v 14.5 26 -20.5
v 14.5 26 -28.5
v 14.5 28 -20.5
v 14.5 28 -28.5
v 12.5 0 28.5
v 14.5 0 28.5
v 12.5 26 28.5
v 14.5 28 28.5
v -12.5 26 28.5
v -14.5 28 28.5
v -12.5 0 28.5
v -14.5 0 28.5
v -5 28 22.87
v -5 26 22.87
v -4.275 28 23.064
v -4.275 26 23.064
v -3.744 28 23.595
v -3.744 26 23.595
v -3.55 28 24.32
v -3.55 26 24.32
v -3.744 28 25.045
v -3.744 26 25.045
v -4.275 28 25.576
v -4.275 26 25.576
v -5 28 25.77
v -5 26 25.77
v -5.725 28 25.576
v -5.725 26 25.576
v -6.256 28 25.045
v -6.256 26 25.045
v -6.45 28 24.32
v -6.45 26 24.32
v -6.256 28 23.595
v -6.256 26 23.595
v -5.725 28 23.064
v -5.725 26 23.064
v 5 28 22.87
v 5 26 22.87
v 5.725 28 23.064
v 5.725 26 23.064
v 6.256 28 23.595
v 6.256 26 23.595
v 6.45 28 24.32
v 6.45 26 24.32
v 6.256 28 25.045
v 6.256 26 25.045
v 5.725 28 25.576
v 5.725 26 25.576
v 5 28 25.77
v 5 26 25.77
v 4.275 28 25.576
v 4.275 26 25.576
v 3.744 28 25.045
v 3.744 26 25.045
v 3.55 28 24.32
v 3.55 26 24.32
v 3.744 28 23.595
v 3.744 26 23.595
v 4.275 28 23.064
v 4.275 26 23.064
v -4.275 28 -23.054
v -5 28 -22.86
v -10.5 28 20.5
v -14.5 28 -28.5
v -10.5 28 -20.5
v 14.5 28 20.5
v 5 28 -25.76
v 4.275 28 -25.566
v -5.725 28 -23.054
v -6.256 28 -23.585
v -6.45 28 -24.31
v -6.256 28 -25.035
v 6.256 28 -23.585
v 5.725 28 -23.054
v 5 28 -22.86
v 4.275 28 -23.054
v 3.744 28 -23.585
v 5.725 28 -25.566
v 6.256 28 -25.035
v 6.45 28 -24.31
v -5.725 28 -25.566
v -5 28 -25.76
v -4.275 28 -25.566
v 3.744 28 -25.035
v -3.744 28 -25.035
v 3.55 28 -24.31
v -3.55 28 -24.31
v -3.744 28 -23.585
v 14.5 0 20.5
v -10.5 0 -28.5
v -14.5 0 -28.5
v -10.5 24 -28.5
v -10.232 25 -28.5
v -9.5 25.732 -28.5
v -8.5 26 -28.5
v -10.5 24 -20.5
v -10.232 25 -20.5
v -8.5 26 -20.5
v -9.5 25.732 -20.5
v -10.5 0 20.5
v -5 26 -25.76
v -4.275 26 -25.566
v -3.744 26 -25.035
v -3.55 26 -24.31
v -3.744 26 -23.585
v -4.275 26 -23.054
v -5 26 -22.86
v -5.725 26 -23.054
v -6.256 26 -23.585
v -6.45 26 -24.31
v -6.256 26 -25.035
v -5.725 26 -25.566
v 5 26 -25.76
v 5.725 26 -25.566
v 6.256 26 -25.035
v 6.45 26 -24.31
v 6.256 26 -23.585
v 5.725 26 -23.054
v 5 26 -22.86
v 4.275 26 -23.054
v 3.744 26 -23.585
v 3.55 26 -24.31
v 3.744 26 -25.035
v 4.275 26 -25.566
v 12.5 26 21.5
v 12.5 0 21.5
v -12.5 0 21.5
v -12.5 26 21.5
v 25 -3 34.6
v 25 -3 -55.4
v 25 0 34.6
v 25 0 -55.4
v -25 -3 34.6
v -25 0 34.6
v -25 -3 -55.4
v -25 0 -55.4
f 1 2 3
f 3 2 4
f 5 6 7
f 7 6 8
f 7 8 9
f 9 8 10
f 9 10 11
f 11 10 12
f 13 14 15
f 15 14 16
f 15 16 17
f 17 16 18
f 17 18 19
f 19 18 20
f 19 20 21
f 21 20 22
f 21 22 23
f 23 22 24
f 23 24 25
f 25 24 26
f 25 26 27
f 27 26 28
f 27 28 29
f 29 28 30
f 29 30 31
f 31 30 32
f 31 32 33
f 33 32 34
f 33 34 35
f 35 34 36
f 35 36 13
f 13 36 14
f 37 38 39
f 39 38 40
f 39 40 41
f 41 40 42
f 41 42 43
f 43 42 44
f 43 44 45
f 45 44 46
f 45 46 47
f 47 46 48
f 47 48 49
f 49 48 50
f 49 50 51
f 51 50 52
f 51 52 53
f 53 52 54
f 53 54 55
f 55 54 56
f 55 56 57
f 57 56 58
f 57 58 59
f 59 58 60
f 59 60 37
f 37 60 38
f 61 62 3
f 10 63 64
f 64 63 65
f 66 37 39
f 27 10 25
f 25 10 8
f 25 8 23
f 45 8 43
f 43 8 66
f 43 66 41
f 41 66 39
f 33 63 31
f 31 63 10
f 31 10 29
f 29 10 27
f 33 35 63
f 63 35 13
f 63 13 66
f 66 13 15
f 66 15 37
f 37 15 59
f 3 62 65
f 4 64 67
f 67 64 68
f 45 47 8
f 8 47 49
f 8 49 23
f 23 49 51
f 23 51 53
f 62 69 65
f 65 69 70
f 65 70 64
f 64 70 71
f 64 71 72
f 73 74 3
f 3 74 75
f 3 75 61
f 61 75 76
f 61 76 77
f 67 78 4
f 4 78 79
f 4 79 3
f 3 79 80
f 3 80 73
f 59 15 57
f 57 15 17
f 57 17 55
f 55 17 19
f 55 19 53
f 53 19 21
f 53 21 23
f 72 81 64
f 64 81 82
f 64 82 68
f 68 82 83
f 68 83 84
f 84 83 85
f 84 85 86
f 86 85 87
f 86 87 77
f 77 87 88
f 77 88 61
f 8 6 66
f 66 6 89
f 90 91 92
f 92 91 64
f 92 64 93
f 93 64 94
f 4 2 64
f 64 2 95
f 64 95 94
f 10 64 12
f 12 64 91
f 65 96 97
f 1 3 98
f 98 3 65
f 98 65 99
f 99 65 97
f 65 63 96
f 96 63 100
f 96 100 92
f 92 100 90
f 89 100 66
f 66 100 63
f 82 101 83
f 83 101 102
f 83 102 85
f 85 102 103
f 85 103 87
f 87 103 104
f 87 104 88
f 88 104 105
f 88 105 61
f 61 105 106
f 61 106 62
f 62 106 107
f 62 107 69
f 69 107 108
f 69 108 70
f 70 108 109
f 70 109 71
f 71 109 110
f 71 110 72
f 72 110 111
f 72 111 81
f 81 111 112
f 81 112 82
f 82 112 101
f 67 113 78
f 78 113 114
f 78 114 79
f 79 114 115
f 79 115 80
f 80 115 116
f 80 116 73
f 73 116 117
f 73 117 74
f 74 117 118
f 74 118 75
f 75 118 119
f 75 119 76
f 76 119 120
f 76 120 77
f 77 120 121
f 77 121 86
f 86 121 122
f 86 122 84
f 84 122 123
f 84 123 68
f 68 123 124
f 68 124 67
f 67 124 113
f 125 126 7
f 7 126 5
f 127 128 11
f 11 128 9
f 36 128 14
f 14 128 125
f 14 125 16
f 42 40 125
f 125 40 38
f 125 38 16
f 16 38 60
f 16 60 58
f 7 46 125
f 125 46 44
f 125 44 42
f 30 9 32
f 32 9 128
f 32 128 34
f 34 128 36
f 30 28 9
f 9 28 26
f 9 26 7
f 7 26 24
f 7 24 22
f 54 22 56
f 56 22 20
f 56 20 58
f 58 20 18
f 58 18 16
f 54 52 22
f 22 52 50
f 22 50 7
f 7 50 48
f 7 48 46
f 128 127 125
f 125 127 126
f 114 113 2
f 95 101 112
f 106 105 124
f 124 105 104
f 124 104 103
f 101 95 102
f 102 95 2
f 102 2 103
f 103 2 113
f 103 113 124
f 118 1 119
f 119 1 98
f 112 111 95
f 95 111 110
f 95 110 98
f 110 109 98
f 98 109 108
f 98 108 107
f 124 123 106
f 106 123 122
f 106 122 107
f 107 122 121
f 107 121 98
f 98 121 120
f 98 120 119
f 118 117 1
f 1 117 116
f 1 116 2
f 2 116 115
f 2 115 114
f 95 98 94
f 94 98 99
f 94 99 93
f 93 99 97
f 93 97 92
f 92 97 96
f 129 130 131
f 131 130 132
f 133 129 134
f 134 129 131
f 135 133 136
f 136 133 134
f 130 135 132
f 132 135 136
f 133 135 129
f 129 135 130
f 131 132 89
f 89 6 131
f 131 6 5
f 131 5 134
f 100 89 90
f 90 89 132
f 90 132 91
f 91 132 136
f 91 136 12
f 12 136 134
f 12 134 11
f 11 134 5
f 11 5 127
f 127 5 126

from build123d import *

# Parameters (mm, degrees)
SKETCH_1_W          = 29
SKETCH_1_H          = 57
SKETCH_1_R          = 1.45
SKETCH_1_W_2        = 21
SKETCH_1_H_2        = 41
EXTRUDE_1_DEPTH     = 28
SKETCH_2_W          = 25
SKETCH_2_H          = 26
CUT_EXTRUDE_1_DEPTH = 7
SKETCH_3_W          = 49
SKETCH_3_H          = 26
CUT_EXTRUDE_2_DEPTH = 25
SKETCH_4_W          = 4
SKETCH_4_H          = 41
CUT_EXTRUDE_3_DEPTH = 25
FILLET_1_R          = 2
SKETCH_5_W          = 50
SKETCH_5_H          = 90
EXTRUDE_2_DEPTH     = 3


with BuildPart() as part:
    # 스케치1 → 보스-돌출1 (new body)
    with BuildSketch(Plane(origin=(0, 0, 0), x_dir=(1, 0, 0), z_dir=(0, 1, 0))):
        Rectangle(SKETCH_1_W, SKETCH_1_H)
        with Locations(Location((-5, 24.31, 0), (0, 0, 270))):
            Circle(SKETCH_1_R, mode=Mode.SUBTRACT)
        with Locations(Location((-5, -24.32, 0), (0, 0, 270))):
            Circle(SKETCH_1_R, mode=Mode.SUBTRACT)
        with Locations(Location((5, -24.32, 0), (0, 0, 90))):
            Circle(SKETCH_1_R, mode=Mode.SUBTRACT)
        with Locations(Location((5, 24.31, 0), (0, 0, 90))):
            Circle(SKETCH_1_R, mode=Mode.SUBTRACT)
        Rectangle(SKETCH_1_W_2, SKETCH_1_H_2, mode=Mode.SUBTRACT)
    extrude(amount=EXTRUDE_1_DEPTH)

    # 스케치2 → 컷-돌출1 (cut)
    with BuildSketch(Plane(origin=(-14, 0, 28.5), x_dir=(-1, 0, 0), z_dir=(0, 0, -1))):
        with Locations((-14, 13)):
            Rectangle(SKETCH_2_W, SKETCH_2_H)
    extrude(amount=CUT_EXTRUDE_1_DEPTH, mode=Mode.SUBTRACT)

    # 스케치3 → 컷-돌출2 (cut)
    with BuildSketch(Plane(origin=(14.5, 0, 0), x_dir=(0, 0, -1), z_dir=(1, 0, 0))):
        with Locations((4, 13)):
            Rectangle(SKETCH_3_W, SKETCH_3_H)
    extrude(amount=-CUT_EXTRUDE_2_DEPTH, mode=Mode.SUBTRACT)

    # 스케치4 → 컷-돌출3 (cut)
    with BuildSketch(Plane(origin=(0, 28, 0), x_dir=(1, 0, 0), z_dir=(0, 1, 0))):
        with Locations((12.5, 0)):
            Rectangle(SKETCH_4_W, SKETCH_4_H)
    extrude(amount=-CUT_EXTRUDE_3_DEPTH, mode=Mode.SUBTRACT)

    # 필렛1
    fillet_1_edges = [part.edges().sort_by_distance(p)[0] for p in [
        (-10.5, 26, -24.5),
    ]]
    fillet(fillet_1_edges, radius=FILLET_1_R)

    # 스케치5 → 보스-돌출2 (add)
    with BuildSketch(Plane.XZ):
        with Locations((0, -10.4)):
            Rectangle(SKETCH_5_W, SKETCH_5_H)
    extrude(amount=EXTRUDE_2_DEPTH)


solid = part.part
